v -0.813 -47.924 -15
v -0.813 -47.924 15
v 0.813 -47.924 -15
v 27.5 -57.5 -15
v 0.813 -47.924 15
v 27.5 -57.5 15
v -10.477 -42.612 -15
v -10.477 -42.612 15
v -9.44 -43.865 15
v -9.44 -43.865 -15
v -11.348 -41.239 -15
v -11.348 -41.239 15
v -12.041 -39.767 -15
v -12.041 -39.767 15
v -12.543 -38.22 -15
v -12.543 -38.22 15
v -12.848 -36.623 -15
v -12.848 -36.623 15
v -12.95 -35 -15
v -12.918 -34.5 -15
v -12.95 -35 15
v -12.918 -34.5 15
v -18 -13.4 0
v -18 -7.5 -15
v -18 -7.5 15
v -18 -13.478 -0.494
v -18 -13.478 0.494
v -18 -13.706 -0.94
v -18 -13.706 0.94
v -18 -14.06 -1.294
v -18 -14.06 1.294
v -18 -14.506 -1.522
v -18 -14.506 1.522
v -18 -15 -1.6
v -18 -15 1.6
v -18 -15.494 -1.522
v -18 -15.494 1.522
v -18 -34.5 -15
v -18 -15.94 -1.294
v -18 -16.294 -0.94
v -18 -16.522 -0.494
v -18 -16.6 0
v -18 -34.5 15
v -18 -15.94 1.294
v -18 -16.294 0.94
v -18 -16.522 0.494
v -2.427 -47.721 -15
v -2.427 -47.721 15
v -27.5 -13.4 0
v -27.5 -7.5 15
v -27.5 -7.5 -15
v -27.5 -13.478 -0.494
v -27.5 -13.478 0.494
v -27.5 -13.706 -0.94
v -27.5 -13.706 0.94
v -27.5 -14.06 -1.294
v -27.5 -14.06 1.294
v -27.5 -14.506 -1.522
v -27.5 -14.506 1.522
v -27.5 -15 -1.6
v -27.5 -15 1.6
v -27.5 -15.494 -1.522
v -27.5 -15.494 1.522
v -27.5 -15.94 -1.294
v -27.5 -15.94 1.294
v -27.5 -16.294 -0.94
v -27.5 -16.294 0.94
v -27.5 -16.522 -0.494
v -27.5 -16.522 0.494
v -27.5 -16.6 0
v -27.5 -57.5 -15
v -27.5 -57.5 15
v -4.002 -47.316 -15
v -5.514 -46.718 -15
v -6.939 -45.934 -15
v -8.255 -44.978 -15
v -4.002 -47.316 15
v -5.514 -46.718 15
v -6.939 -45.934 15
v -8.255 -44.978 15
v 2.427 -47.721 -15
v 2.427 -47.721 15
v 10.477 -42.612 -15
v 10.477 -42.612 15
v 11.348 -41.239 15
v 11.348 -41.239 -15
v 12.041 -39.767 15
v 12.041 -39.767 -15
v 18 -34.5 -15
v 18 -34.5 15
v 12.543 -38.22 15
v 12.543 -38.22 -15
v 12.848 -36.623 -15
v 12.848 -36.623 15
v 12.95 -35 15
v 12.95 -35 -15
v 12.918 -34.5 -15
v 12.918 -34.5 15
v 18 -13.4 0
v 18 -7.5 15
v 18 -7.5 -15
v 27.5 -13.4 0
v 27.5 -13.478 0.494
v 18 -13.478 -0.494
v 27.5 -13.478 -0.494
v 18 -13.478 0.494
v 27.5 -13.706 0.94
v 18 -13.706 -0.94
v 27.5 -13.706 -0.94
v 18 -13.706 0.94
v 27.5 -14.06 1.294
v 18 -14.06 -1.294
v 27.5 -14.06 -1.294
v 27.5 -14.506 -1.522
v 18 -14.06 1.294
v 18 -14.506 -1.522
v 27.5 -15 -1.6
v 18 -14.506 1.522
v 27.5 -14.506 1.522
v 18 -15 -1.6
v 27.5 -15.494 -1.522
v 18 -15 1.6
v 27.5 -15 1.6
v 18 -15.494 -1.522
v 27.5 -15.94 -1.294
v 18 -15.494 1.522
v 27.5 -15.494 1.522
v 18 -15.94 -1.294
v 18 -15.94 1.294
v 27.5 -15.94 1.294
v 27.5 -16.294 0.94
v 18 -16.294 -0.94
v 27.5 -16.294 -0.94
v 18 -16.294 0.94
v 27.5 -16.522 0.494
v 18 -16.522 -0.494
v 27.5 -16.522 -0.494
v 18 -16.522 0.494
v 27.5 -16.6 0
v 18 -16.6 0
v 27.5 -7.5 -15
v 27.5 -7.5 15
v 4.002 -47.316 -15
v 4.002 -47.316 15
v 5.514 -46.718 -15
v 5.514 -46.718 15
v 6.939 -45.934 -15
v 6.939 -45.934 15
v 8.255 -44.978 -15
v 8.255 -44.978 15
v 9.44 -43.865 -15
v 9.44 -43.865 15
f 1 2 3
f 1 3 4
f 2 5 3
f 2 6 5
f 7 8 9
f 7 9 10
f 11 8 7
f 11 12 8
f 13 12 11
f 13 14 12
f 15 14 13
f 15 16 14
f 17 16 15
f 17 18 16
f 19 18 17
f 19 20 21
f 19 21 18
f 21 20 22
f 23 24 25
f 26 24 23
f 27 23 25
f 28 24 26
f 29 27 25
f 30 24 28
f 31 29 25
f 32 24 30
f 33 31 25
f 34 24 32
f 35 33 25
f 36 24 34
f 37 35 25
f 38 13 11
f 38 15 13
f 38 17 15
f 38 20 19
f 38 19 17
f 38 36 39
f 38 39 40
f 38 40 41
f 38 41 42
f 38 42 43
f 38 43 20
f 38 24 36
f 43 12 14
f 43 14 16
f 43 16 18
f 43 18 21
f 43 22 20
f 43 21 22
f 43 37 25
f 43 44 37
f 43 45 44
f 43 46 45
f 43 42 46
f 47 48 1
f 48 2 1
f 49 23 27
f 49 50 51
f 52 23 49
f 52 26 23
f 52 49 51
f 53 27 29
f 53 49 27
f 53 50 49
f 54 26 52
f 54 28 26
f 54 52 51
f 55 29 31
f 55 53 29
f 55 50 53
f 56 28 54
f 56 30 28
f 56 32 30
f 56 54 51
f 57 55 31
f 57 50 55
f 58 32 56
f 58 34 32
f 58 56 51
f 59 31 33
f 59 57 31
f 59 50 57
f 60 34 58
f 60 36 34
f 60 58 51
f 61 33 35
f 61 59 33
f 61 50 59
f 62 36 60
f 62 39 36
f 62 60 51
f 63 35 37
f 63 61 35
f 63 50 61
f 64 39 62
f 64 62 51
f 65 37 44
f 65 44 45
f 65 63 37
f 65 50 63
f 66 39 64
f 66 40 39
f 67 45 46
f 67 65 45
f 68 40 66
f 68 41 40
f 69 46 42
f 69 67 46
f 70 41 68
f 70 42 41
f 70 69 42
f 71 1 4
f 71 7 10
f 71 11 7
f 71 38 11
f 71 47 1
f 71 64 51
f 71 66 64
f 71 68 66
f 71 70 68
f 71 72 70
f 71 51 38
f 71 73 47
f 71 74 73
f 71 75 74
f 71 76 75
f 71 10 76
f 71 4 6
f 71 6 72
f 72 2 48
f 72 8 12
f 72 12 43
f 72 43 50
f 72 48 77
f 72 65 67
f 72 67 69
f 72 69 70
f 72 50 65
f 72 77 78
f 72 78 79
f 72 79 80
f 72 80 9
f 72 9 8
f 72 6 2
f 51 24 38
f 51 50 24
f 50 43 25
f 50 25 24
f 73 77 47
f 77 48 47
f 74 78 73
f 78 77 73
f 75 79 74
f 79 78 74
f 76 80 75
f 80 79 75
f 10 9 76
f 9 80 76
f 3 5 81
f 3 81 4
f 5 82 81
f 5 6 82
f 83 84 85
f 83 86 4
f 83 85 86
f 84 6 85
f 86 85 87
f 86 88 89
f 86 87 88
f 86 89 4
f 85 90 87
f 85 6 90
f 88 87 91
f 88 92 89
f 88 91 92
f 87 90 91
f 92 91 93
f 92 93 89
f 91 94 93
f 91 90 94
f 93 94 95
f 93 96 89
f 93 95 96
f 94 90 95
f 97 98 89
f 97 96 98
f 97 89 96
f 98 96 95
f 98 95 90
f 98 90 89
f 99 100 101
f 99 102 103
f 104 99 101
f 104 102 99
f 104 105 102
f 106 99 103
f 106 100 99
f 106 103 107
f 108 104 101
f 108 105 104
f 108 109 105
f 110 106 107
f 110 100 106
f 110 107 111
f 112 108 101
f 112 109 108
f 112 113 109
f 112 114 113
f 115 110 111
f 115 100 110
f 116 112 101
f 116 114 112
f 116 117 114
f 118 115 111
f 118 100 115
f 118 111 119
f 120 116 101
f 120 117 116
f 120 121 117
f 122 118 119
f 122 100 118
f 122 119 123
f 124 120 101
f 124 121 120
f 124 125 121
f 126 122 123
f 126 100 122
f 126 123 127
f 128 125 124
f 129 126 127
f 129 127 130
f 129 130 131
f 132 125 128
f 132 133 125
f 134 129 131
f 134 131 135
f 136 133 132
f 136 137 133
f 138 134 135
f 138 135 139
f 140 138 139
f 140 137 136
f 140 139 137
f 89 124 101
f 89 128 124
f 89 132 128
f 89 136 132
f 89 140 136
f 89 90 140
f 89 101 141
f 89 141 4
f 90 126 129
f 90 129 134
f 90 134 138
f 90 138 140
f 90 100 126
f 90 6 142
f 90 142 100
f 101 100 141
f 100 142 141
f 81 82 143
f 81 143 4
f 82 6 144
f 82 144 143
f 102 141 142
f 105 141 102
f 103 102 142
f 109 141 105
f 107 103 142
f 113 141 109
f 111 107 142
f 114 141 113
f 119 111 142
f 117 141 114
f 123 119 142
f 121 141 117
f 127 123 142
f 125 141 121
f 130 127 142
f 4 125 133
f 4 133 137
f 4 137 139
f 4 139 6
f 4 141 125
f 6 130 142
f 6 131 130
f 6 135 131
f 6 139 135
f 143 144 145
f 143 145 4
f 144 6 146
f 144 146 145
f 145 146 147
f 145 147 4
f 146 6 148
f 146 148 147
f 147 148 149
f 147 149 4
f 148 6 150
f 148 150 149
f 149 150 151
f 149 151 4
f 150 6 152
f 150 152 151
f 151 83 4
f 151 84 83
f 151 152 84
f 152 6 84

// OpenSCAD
// file: ../888_3015.scad
module 888_3015_A (draft = true){



width = 90;
depth = 45;
height = 10;
kloub_height = height*2.5;
tube_height = 50;
slit_width = 10;

height_cylinder = 35;


	difference (){

		union (){
			translate([-width/2,-depth/2,0])
				cube([width, depth, height/2]);

			translate([-height_cylinder/2,0,0])
				rotate([0,90,0])
					cylinder (h = height_cylinder, r = 30, $fn = 50);
		}

		translate([0,0,0])
			rotate([0,90,0])
				rotate_extrude(convexity = 10)
					translate([depth/2 + (main_tube_outer_diameter + 0.2)/2, 0, 0])
						circle(d = main_tube_outer_diameter + 0.2, $fn = 100);

		translate([-75,-75,-150])
				cube([150,150,150]);

		translate([-25,0,30/2])
			rotate([0,90,0])
				cylinder(h=50, r = M3_screw_diameter/2, $fn = 20);


		translate([-width/2 + 5, 0 ,-height/2-global_clearance/2])
			cylinder (h = height + global_clearance, r = M3_screw_diameter/2, $fn = 20);
		
		translate([width/2 - 5, 0 , - height/2 - global_clearance/2])
				cylinder (h = height + global_clearance, r = M3_screw_diameter/2, $fn = 20);
	}
}


module 888_3015_B(draft = true) {

width = 90;
depth = main_tube_outer_diameter - 4;
height = 10;
kloub_height = height*2.5;
tube_height = 50;
slit_width = 10;

height_cylinder = 35;

	difference(){
		translate([-height_cylinder/2 - 10,-15,+height*0.75])
			cube([height_cylinder+20,30,50]);

		translate([- height_cylinder/2 - global_clearance,-25,-global_clearance])
			cube([height_cylinder + global_clearance*2, 50, 35]);

		translate([-50,0,30/2])
			rotate([0,90,0])
				cylinder(h= 100, r = M3_screw_diameter/2, $fn = 20);

/*		%translate([height_cylinder -10 - M3_nut_height,0,30/2])
		    rotate([0, 90,0])
		       cylinder (h= M3_nut_height + global_clearance + 10, r = M3_nut_diameter/2, $fn = 20);
		    			
		%translate([-height_cylinder - M3_nut_height,0,30/2])
		    rotate([0, 90,0])
		        cylinder (h= M3_nut_height + global_clearance + 10, r = M3_nut_diameter/2, $fn = 20);
*/
		translate([0,50,35])
		    rotate([90,0,0])
				cylinder(h = 100, d = main_tube_outer_diameter + global_clearance,  $fn = 50);
	}
}

888_3015_A();

888_3015_B();


 include <../parameters.scad>
// main file
include <../../parameters.scad>
use <../888_3015.scad>

draft = false;
rotate([90,0,0])
888_3015_B(draft);
